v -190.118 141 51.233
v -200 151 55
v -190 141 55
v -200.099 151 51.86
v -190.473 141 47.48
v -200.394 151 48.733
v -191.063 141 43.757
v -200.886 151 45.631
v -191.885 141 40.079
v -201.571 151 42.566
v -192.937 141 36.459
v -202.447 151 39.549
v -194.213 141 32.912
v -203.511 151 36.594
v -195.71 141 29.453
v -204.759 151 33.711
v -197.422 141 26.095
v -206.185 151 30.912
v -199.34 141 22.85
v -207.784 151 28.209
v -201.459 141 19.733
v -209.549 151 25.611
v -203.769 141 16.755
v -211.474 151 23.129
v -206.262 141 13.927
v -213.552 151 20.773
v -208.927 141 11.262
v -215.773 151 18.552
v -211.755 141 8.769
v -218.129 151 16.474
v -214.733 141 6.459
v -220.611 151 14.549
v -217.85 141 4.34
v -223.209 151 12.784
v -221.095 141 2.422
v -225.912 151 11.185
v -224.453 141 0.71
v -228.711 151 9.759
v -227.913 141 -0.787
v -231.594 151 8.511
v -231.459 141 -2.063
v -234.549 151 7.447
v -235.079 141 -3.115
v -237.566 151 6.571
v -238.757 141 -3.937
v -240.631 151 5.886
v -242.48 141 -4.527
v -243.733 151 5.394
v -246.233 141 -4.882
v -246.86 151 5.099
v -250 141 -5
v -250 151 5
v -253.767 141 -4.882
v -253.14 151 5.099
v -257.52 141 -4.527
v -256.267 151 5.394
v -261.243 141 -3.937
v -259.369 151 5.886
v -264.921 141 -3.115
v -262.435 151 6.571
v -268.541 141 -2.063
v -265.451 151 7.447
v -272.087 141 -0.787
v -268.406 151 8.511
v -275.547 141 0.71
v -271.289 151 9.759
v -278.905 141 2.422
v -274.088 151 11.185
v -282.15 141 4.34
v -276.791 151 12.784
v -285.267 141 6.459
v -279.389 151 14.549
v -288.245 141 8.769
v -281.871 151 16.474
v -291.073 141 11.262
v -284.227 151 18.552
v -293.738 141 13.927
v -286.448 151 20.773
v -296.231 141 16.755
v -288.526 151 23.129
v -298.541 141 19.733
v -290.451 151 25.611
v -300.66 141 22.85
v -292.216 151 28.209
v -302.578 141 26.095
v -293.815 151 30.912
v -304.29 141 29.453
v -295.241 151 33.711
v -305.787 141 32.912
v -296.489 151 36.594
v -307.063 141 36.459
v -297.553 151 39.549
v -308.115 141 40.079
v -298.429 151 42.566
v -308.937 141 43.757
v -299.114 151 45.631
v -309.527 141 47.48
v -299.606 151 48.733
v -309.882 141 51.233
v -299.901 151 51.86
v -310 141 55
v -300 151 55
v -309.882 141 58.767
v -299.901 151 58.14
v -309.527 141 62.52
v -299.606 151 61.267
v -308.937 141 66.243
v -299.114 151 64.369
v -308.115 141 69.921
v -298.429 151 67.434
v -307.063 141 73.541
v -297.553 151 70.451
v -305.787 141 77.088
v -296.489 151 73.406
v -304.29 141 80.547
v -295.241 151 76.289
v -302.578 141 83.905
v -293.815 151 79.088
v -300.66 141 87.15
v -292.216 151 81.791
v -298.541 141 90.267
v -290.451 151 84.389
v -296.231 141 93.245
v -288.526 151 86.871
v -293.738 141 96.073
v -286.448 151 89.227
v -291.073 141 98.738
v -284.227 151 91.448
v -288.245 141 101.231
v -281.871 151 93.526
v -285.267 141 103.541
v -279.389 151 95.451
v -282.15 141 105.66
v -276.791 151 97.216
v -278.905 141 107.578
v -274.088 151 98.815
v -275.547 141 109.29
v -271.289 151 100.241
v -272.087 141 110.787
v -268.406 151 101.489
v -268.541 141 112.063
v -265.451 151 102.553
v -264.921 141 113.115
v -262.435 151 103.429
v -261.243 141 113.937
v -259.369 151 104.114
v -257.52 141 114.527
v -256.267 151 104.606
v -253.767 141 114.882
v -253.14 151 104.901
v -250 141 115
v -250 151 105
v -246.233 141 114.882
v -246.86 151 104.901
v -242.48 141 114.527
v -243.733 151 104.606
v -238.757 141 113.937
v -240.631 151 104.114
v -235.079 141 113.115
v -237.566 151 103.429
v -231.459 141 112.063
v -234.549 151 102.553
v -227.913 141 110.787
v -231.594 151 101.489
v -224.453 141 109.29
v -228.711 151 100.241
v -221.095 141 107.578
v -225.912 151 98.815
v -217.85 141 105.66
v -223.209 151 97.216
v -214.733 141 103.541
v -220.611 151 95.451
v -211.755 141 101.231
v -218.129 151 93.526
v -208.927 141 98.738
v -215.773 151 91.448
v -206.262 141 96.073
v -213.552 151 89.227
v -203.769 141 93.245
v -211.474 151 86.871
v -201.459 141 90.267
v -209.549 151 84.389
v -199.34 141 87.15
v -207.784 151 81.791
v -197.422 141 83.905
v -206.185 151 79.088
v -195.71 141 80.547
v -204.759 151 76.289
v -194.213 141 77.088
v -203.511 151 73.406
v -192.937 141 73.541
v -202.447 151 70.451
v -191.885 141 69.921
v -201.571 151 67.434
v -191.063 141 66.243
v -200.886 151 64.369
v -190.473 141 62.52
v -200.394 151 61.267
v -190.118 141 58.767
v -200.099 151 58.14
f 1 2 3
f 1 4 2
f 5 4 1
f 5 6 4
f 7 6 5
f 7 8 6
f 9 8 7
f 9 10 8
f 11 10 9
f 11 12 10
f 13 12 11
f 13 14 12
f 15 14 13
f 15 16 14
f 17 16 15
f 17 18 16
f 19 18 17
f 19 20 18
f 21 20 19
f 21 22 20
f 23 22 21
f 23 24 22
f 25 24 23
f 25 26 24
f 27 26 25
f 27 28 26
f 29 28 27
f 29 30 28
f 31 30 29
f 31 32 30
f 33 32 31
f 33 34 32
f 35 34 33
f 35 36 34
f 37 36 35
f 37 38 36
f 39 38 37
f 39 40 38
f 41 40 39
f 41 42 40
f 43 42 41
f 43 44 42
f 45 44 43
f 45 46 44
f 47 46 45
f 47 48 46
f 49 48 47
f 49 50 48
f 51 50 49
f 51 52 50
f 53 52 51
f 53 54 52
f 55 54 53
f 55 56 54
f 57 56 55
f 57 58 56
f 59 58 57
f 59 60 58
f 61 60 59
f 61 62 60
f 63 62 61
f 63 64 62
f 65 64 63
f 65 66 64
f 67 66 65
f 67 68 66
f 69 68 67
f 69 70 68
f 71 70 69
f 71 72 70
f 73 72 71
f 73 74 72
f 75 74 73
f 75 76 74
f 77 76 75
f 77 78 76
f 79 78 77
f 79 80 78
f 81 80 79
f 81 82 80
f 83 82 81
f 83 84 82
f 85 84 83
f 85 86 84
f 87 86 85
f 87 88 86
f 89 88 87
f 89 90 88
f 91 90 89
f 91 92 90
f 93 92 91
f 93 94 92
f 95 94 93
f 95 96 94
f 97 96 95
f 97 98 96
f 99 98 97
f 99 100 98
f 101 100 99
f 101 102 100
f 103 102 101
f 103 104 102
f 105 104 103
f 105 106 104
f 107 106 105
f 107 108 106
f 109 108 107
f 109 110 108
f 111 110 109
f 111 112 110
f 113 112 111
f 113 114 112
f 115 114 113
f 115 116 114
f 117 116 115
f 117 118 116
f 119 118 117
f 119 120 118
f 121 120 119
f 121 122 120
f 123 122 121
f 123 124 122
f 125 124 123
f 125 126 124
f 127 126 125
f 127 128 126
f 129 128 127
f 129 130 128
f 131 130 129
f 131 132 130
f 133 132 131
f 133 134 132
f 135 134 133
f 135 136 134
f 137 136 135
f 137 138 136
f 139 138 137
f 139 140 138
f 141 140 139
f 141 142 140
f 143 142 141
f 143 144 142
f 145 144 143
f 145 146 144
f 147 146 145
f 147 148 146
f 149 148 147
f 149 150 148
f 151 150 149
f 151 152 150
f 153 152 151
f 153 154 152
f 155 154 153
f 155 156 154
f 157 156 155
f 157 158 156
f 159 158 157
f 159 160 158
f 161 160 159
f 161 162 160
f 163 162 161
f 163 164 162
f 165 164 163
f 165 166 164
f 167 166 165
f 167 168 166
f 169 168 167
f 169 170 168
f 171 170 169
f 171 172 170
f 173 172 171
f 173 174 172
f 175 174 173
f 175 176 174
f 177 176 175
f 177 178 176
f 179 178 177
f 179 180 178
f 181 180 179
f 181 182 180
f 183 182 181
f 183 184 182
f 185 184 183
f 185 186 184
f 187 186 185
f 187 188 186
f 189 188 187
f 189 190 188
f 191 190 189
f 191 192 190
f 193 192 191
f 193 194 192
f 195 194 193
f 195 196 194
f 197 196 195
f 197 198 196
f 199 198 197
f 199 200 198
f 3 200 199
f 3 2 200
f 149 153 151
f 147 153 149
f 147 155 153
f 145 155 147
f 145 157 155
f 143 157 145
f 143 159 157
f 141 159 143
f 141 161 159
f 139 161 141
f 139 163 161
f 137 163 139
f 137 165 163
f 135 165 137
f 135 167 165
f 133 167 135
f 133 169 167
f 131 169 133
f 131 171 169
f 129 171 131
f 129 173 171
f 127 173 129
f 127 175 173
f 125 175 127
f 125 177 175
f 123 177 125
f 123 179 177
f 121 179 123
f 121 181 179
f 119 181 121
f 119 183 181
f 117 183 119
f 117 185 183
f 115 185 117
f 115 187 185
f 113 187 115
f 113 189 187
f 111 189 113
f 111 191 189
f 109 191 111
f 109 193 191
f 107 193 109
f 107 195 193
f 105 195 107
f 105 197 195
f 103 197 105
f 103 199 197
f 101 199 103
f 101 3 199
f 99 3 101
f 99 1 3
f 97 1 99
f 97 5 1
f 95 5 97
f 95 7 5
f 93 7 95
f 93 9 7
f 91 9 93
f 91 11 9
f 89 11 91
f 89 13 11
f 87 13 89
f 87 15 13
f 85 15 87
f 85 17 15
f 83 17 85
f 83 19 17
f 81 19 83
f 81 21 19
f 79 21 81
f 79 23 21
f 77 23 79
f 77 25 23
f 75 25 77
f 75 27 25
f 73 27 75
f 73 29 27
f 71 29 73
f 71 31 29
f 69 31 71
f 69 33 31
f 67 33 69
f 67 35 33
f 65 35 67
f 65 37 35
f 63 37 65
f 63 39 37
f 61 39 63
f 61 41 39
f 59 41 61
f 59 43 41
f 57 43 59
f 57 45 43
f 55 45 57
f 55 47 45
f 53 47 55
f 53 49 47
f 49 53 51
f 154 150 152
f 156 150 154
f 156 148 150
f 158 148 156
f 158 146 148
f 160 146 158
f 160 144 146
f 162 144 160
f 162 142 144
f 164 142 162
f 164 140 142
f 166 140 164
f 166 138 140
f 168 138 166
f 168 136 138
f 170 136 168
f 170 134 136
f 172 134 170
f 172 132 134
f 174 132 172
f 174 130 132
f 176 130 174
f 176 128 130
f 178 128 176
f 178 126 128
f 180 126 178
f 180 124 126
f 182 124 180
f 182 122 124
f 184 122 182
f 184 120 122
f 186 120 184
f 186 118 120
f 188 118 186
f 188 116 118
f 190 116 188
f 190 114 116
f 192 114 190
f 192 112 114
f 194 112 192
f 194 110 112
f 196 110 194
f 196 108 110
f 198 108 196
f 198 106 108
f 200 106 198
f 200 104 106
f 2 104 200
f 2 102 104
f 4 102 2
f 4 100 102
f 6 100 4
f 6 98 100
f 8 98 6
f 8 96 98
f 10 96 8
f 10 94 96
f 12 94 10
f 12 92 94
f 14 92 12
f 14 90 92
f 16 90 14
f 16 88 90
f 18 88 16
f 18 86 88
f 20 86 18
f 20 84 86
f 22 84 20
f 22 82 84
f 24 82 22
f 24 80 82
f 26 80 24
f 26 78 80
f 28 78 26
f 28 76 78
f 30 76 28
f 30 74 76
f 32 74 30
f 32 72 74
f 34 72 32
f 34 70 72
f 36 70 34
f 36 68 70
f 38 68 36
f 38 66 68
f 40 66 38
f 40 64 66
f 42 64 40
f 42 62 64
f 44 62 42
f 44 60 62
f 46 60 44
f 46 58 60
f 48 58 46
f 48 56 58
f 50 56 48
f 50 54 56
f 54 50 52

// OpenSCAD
$fn = 100;

translate([-250, 151, 55])
    rotate([-90, 0, 0])
        translate([0, 0, -10])
            cylinder(10, 60, 50, false);
